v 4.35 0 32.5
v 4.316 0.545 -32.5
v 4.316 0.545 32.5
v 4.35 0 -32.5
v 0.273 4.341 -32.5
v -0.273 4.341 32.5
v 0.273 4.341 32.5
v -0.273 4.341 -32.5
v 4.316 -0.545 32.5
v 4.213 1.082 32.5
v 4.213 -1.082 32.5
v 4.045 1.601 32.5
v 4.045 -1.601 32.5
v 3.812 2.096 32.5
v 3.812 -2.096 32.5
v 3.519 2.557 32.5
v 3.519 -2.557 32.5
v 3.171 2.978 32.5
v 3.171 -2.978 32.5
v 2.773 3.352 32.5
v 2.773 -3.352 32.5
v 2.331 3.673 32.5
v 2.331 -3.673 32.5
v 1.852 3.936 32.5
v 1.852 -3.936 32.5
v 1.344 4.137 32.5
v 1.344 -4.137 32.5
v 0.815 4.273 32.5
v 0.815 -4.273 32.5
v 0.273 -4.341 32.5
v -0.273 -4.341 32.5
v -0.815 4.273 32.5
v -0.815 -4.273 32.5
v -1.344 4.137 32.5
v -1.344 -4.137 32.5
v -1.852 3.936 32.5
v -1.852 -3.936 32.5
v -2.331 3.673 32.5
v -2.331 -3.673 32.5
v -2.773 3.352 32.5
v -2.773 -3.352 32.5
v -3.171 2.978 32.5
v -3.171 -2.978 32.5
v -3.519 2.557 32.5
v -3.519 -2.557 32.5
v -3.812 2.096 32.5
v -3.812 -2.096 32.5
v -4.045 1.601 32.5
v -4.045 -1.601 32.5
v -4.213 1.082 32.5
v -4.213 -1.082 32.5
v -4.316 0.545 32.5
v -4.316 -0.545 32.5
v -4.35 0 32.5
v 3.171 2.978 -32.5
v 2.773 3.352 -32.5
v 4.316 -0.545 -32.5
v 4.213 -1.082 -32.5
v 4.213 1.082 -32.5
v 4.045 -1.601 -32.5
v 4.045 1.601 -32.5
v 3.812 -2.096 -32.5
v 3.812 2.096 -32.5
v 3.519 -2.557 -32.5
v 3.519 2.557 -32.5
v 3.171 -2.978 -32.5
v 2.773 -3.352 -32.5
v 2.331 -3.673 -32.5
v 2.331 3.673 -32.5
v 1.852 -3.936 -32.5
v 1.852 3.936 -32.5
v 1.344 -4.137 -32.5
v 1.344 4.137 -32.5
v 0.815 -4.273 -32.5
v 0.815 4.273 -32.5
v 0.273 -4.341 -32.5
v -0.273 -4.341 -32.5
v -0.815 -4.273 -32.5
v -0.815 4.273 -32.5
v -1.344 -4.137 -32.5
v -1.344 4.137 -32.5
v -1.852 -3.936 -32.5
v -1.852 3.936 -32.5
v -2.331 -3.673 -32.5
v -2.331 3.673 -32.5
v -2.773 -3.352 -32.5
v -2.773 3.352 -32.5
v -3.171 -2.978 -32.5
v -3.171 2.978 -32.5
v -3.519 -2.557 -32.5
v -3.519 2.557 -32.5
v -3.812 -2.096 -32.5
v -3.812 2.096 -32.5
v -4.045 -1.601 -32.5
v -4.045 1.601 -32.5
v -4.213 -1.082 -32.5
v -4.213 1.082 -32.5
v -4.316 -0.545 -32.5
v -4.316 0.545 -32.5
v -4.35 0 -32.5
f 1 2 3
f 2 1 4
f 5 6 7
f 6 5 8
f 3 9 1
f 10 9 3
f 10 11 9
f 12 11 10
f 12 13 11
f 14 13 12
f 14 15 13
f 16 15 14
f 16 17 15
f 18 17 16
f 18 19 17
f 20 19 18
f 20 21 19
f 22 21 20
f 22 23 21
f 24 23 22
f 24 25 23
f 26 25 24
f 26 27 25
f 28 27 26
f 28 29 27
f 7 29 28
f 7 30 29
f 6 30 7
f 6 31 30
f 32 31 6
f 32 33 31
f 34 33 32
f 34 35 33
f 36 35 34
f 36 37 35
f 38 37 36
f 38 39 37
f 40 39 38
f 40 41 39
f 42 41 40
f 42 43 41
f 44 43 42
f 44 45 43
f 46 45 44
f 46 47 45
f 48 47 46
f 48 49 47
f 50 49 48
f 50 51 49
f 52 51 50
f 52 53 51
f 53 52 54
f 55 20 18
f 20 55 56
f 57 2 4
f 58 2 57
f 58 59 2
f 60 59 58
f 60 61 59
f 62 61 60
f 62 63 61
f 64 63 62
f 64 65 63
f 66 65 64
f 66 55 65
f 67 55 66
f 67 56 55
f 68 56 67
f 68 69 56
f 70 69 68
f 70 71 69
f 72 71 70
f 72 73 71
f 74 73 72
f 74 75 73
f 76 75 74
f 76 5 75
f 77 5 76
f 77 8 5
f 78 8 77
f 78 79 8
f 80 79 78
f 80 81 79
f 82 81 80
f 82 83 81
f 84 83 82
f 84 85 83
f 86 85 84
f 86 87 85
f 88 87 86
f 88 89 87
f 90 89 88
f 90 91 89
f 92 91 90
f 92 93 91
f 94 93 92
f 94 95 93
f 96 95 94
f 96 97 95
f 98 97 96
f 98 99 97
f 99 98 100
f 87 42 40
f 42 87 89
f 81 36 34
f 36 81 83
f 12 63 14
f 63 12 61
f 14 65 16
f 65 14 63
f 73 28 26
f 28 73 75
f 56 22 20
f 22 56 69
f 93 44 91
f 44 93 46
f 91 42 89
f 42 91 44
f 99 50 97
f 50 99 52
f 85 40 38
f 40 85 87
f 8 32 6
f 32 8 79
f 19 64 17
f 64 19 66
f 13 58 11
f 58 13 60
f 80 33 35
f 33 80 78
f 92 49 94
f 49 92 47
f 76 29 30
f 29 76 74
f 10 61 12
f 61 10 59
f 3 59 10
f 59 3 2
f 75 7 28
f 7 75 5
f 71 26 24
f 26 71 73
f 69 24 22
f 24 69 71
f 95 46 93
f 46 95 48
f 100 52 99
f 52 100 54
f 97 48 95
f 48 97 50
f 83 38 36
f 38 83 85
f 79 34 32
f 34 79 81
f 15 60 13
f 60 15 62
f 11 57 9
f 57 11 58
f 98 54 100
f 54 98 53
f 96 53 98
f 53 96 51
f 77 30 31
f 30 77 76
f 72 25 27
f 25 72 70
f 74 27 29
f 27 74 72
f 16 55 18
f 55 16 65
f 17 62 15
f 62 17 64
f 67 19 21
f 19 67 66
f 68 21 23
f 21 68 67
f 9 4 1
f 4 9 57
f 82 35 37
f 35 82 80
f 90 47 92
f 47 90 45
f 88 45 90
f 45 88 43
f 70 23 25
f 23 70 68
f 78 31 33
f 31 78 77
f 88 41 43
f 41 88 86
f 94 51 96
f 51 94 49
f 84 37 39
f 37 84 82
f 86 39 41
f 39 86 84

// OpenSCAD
$fn = 50;


difference() {
	union() {
		translate(v = [0, 0, -32.5000000000]) {
			cylinder(h = 65, r = 4.3500000000);
		}
	}
	union() {
		translate(v = [0, 0, -100.0000000000]) {
			cylinder(h = 200, r = 0);
		}
	}
}
